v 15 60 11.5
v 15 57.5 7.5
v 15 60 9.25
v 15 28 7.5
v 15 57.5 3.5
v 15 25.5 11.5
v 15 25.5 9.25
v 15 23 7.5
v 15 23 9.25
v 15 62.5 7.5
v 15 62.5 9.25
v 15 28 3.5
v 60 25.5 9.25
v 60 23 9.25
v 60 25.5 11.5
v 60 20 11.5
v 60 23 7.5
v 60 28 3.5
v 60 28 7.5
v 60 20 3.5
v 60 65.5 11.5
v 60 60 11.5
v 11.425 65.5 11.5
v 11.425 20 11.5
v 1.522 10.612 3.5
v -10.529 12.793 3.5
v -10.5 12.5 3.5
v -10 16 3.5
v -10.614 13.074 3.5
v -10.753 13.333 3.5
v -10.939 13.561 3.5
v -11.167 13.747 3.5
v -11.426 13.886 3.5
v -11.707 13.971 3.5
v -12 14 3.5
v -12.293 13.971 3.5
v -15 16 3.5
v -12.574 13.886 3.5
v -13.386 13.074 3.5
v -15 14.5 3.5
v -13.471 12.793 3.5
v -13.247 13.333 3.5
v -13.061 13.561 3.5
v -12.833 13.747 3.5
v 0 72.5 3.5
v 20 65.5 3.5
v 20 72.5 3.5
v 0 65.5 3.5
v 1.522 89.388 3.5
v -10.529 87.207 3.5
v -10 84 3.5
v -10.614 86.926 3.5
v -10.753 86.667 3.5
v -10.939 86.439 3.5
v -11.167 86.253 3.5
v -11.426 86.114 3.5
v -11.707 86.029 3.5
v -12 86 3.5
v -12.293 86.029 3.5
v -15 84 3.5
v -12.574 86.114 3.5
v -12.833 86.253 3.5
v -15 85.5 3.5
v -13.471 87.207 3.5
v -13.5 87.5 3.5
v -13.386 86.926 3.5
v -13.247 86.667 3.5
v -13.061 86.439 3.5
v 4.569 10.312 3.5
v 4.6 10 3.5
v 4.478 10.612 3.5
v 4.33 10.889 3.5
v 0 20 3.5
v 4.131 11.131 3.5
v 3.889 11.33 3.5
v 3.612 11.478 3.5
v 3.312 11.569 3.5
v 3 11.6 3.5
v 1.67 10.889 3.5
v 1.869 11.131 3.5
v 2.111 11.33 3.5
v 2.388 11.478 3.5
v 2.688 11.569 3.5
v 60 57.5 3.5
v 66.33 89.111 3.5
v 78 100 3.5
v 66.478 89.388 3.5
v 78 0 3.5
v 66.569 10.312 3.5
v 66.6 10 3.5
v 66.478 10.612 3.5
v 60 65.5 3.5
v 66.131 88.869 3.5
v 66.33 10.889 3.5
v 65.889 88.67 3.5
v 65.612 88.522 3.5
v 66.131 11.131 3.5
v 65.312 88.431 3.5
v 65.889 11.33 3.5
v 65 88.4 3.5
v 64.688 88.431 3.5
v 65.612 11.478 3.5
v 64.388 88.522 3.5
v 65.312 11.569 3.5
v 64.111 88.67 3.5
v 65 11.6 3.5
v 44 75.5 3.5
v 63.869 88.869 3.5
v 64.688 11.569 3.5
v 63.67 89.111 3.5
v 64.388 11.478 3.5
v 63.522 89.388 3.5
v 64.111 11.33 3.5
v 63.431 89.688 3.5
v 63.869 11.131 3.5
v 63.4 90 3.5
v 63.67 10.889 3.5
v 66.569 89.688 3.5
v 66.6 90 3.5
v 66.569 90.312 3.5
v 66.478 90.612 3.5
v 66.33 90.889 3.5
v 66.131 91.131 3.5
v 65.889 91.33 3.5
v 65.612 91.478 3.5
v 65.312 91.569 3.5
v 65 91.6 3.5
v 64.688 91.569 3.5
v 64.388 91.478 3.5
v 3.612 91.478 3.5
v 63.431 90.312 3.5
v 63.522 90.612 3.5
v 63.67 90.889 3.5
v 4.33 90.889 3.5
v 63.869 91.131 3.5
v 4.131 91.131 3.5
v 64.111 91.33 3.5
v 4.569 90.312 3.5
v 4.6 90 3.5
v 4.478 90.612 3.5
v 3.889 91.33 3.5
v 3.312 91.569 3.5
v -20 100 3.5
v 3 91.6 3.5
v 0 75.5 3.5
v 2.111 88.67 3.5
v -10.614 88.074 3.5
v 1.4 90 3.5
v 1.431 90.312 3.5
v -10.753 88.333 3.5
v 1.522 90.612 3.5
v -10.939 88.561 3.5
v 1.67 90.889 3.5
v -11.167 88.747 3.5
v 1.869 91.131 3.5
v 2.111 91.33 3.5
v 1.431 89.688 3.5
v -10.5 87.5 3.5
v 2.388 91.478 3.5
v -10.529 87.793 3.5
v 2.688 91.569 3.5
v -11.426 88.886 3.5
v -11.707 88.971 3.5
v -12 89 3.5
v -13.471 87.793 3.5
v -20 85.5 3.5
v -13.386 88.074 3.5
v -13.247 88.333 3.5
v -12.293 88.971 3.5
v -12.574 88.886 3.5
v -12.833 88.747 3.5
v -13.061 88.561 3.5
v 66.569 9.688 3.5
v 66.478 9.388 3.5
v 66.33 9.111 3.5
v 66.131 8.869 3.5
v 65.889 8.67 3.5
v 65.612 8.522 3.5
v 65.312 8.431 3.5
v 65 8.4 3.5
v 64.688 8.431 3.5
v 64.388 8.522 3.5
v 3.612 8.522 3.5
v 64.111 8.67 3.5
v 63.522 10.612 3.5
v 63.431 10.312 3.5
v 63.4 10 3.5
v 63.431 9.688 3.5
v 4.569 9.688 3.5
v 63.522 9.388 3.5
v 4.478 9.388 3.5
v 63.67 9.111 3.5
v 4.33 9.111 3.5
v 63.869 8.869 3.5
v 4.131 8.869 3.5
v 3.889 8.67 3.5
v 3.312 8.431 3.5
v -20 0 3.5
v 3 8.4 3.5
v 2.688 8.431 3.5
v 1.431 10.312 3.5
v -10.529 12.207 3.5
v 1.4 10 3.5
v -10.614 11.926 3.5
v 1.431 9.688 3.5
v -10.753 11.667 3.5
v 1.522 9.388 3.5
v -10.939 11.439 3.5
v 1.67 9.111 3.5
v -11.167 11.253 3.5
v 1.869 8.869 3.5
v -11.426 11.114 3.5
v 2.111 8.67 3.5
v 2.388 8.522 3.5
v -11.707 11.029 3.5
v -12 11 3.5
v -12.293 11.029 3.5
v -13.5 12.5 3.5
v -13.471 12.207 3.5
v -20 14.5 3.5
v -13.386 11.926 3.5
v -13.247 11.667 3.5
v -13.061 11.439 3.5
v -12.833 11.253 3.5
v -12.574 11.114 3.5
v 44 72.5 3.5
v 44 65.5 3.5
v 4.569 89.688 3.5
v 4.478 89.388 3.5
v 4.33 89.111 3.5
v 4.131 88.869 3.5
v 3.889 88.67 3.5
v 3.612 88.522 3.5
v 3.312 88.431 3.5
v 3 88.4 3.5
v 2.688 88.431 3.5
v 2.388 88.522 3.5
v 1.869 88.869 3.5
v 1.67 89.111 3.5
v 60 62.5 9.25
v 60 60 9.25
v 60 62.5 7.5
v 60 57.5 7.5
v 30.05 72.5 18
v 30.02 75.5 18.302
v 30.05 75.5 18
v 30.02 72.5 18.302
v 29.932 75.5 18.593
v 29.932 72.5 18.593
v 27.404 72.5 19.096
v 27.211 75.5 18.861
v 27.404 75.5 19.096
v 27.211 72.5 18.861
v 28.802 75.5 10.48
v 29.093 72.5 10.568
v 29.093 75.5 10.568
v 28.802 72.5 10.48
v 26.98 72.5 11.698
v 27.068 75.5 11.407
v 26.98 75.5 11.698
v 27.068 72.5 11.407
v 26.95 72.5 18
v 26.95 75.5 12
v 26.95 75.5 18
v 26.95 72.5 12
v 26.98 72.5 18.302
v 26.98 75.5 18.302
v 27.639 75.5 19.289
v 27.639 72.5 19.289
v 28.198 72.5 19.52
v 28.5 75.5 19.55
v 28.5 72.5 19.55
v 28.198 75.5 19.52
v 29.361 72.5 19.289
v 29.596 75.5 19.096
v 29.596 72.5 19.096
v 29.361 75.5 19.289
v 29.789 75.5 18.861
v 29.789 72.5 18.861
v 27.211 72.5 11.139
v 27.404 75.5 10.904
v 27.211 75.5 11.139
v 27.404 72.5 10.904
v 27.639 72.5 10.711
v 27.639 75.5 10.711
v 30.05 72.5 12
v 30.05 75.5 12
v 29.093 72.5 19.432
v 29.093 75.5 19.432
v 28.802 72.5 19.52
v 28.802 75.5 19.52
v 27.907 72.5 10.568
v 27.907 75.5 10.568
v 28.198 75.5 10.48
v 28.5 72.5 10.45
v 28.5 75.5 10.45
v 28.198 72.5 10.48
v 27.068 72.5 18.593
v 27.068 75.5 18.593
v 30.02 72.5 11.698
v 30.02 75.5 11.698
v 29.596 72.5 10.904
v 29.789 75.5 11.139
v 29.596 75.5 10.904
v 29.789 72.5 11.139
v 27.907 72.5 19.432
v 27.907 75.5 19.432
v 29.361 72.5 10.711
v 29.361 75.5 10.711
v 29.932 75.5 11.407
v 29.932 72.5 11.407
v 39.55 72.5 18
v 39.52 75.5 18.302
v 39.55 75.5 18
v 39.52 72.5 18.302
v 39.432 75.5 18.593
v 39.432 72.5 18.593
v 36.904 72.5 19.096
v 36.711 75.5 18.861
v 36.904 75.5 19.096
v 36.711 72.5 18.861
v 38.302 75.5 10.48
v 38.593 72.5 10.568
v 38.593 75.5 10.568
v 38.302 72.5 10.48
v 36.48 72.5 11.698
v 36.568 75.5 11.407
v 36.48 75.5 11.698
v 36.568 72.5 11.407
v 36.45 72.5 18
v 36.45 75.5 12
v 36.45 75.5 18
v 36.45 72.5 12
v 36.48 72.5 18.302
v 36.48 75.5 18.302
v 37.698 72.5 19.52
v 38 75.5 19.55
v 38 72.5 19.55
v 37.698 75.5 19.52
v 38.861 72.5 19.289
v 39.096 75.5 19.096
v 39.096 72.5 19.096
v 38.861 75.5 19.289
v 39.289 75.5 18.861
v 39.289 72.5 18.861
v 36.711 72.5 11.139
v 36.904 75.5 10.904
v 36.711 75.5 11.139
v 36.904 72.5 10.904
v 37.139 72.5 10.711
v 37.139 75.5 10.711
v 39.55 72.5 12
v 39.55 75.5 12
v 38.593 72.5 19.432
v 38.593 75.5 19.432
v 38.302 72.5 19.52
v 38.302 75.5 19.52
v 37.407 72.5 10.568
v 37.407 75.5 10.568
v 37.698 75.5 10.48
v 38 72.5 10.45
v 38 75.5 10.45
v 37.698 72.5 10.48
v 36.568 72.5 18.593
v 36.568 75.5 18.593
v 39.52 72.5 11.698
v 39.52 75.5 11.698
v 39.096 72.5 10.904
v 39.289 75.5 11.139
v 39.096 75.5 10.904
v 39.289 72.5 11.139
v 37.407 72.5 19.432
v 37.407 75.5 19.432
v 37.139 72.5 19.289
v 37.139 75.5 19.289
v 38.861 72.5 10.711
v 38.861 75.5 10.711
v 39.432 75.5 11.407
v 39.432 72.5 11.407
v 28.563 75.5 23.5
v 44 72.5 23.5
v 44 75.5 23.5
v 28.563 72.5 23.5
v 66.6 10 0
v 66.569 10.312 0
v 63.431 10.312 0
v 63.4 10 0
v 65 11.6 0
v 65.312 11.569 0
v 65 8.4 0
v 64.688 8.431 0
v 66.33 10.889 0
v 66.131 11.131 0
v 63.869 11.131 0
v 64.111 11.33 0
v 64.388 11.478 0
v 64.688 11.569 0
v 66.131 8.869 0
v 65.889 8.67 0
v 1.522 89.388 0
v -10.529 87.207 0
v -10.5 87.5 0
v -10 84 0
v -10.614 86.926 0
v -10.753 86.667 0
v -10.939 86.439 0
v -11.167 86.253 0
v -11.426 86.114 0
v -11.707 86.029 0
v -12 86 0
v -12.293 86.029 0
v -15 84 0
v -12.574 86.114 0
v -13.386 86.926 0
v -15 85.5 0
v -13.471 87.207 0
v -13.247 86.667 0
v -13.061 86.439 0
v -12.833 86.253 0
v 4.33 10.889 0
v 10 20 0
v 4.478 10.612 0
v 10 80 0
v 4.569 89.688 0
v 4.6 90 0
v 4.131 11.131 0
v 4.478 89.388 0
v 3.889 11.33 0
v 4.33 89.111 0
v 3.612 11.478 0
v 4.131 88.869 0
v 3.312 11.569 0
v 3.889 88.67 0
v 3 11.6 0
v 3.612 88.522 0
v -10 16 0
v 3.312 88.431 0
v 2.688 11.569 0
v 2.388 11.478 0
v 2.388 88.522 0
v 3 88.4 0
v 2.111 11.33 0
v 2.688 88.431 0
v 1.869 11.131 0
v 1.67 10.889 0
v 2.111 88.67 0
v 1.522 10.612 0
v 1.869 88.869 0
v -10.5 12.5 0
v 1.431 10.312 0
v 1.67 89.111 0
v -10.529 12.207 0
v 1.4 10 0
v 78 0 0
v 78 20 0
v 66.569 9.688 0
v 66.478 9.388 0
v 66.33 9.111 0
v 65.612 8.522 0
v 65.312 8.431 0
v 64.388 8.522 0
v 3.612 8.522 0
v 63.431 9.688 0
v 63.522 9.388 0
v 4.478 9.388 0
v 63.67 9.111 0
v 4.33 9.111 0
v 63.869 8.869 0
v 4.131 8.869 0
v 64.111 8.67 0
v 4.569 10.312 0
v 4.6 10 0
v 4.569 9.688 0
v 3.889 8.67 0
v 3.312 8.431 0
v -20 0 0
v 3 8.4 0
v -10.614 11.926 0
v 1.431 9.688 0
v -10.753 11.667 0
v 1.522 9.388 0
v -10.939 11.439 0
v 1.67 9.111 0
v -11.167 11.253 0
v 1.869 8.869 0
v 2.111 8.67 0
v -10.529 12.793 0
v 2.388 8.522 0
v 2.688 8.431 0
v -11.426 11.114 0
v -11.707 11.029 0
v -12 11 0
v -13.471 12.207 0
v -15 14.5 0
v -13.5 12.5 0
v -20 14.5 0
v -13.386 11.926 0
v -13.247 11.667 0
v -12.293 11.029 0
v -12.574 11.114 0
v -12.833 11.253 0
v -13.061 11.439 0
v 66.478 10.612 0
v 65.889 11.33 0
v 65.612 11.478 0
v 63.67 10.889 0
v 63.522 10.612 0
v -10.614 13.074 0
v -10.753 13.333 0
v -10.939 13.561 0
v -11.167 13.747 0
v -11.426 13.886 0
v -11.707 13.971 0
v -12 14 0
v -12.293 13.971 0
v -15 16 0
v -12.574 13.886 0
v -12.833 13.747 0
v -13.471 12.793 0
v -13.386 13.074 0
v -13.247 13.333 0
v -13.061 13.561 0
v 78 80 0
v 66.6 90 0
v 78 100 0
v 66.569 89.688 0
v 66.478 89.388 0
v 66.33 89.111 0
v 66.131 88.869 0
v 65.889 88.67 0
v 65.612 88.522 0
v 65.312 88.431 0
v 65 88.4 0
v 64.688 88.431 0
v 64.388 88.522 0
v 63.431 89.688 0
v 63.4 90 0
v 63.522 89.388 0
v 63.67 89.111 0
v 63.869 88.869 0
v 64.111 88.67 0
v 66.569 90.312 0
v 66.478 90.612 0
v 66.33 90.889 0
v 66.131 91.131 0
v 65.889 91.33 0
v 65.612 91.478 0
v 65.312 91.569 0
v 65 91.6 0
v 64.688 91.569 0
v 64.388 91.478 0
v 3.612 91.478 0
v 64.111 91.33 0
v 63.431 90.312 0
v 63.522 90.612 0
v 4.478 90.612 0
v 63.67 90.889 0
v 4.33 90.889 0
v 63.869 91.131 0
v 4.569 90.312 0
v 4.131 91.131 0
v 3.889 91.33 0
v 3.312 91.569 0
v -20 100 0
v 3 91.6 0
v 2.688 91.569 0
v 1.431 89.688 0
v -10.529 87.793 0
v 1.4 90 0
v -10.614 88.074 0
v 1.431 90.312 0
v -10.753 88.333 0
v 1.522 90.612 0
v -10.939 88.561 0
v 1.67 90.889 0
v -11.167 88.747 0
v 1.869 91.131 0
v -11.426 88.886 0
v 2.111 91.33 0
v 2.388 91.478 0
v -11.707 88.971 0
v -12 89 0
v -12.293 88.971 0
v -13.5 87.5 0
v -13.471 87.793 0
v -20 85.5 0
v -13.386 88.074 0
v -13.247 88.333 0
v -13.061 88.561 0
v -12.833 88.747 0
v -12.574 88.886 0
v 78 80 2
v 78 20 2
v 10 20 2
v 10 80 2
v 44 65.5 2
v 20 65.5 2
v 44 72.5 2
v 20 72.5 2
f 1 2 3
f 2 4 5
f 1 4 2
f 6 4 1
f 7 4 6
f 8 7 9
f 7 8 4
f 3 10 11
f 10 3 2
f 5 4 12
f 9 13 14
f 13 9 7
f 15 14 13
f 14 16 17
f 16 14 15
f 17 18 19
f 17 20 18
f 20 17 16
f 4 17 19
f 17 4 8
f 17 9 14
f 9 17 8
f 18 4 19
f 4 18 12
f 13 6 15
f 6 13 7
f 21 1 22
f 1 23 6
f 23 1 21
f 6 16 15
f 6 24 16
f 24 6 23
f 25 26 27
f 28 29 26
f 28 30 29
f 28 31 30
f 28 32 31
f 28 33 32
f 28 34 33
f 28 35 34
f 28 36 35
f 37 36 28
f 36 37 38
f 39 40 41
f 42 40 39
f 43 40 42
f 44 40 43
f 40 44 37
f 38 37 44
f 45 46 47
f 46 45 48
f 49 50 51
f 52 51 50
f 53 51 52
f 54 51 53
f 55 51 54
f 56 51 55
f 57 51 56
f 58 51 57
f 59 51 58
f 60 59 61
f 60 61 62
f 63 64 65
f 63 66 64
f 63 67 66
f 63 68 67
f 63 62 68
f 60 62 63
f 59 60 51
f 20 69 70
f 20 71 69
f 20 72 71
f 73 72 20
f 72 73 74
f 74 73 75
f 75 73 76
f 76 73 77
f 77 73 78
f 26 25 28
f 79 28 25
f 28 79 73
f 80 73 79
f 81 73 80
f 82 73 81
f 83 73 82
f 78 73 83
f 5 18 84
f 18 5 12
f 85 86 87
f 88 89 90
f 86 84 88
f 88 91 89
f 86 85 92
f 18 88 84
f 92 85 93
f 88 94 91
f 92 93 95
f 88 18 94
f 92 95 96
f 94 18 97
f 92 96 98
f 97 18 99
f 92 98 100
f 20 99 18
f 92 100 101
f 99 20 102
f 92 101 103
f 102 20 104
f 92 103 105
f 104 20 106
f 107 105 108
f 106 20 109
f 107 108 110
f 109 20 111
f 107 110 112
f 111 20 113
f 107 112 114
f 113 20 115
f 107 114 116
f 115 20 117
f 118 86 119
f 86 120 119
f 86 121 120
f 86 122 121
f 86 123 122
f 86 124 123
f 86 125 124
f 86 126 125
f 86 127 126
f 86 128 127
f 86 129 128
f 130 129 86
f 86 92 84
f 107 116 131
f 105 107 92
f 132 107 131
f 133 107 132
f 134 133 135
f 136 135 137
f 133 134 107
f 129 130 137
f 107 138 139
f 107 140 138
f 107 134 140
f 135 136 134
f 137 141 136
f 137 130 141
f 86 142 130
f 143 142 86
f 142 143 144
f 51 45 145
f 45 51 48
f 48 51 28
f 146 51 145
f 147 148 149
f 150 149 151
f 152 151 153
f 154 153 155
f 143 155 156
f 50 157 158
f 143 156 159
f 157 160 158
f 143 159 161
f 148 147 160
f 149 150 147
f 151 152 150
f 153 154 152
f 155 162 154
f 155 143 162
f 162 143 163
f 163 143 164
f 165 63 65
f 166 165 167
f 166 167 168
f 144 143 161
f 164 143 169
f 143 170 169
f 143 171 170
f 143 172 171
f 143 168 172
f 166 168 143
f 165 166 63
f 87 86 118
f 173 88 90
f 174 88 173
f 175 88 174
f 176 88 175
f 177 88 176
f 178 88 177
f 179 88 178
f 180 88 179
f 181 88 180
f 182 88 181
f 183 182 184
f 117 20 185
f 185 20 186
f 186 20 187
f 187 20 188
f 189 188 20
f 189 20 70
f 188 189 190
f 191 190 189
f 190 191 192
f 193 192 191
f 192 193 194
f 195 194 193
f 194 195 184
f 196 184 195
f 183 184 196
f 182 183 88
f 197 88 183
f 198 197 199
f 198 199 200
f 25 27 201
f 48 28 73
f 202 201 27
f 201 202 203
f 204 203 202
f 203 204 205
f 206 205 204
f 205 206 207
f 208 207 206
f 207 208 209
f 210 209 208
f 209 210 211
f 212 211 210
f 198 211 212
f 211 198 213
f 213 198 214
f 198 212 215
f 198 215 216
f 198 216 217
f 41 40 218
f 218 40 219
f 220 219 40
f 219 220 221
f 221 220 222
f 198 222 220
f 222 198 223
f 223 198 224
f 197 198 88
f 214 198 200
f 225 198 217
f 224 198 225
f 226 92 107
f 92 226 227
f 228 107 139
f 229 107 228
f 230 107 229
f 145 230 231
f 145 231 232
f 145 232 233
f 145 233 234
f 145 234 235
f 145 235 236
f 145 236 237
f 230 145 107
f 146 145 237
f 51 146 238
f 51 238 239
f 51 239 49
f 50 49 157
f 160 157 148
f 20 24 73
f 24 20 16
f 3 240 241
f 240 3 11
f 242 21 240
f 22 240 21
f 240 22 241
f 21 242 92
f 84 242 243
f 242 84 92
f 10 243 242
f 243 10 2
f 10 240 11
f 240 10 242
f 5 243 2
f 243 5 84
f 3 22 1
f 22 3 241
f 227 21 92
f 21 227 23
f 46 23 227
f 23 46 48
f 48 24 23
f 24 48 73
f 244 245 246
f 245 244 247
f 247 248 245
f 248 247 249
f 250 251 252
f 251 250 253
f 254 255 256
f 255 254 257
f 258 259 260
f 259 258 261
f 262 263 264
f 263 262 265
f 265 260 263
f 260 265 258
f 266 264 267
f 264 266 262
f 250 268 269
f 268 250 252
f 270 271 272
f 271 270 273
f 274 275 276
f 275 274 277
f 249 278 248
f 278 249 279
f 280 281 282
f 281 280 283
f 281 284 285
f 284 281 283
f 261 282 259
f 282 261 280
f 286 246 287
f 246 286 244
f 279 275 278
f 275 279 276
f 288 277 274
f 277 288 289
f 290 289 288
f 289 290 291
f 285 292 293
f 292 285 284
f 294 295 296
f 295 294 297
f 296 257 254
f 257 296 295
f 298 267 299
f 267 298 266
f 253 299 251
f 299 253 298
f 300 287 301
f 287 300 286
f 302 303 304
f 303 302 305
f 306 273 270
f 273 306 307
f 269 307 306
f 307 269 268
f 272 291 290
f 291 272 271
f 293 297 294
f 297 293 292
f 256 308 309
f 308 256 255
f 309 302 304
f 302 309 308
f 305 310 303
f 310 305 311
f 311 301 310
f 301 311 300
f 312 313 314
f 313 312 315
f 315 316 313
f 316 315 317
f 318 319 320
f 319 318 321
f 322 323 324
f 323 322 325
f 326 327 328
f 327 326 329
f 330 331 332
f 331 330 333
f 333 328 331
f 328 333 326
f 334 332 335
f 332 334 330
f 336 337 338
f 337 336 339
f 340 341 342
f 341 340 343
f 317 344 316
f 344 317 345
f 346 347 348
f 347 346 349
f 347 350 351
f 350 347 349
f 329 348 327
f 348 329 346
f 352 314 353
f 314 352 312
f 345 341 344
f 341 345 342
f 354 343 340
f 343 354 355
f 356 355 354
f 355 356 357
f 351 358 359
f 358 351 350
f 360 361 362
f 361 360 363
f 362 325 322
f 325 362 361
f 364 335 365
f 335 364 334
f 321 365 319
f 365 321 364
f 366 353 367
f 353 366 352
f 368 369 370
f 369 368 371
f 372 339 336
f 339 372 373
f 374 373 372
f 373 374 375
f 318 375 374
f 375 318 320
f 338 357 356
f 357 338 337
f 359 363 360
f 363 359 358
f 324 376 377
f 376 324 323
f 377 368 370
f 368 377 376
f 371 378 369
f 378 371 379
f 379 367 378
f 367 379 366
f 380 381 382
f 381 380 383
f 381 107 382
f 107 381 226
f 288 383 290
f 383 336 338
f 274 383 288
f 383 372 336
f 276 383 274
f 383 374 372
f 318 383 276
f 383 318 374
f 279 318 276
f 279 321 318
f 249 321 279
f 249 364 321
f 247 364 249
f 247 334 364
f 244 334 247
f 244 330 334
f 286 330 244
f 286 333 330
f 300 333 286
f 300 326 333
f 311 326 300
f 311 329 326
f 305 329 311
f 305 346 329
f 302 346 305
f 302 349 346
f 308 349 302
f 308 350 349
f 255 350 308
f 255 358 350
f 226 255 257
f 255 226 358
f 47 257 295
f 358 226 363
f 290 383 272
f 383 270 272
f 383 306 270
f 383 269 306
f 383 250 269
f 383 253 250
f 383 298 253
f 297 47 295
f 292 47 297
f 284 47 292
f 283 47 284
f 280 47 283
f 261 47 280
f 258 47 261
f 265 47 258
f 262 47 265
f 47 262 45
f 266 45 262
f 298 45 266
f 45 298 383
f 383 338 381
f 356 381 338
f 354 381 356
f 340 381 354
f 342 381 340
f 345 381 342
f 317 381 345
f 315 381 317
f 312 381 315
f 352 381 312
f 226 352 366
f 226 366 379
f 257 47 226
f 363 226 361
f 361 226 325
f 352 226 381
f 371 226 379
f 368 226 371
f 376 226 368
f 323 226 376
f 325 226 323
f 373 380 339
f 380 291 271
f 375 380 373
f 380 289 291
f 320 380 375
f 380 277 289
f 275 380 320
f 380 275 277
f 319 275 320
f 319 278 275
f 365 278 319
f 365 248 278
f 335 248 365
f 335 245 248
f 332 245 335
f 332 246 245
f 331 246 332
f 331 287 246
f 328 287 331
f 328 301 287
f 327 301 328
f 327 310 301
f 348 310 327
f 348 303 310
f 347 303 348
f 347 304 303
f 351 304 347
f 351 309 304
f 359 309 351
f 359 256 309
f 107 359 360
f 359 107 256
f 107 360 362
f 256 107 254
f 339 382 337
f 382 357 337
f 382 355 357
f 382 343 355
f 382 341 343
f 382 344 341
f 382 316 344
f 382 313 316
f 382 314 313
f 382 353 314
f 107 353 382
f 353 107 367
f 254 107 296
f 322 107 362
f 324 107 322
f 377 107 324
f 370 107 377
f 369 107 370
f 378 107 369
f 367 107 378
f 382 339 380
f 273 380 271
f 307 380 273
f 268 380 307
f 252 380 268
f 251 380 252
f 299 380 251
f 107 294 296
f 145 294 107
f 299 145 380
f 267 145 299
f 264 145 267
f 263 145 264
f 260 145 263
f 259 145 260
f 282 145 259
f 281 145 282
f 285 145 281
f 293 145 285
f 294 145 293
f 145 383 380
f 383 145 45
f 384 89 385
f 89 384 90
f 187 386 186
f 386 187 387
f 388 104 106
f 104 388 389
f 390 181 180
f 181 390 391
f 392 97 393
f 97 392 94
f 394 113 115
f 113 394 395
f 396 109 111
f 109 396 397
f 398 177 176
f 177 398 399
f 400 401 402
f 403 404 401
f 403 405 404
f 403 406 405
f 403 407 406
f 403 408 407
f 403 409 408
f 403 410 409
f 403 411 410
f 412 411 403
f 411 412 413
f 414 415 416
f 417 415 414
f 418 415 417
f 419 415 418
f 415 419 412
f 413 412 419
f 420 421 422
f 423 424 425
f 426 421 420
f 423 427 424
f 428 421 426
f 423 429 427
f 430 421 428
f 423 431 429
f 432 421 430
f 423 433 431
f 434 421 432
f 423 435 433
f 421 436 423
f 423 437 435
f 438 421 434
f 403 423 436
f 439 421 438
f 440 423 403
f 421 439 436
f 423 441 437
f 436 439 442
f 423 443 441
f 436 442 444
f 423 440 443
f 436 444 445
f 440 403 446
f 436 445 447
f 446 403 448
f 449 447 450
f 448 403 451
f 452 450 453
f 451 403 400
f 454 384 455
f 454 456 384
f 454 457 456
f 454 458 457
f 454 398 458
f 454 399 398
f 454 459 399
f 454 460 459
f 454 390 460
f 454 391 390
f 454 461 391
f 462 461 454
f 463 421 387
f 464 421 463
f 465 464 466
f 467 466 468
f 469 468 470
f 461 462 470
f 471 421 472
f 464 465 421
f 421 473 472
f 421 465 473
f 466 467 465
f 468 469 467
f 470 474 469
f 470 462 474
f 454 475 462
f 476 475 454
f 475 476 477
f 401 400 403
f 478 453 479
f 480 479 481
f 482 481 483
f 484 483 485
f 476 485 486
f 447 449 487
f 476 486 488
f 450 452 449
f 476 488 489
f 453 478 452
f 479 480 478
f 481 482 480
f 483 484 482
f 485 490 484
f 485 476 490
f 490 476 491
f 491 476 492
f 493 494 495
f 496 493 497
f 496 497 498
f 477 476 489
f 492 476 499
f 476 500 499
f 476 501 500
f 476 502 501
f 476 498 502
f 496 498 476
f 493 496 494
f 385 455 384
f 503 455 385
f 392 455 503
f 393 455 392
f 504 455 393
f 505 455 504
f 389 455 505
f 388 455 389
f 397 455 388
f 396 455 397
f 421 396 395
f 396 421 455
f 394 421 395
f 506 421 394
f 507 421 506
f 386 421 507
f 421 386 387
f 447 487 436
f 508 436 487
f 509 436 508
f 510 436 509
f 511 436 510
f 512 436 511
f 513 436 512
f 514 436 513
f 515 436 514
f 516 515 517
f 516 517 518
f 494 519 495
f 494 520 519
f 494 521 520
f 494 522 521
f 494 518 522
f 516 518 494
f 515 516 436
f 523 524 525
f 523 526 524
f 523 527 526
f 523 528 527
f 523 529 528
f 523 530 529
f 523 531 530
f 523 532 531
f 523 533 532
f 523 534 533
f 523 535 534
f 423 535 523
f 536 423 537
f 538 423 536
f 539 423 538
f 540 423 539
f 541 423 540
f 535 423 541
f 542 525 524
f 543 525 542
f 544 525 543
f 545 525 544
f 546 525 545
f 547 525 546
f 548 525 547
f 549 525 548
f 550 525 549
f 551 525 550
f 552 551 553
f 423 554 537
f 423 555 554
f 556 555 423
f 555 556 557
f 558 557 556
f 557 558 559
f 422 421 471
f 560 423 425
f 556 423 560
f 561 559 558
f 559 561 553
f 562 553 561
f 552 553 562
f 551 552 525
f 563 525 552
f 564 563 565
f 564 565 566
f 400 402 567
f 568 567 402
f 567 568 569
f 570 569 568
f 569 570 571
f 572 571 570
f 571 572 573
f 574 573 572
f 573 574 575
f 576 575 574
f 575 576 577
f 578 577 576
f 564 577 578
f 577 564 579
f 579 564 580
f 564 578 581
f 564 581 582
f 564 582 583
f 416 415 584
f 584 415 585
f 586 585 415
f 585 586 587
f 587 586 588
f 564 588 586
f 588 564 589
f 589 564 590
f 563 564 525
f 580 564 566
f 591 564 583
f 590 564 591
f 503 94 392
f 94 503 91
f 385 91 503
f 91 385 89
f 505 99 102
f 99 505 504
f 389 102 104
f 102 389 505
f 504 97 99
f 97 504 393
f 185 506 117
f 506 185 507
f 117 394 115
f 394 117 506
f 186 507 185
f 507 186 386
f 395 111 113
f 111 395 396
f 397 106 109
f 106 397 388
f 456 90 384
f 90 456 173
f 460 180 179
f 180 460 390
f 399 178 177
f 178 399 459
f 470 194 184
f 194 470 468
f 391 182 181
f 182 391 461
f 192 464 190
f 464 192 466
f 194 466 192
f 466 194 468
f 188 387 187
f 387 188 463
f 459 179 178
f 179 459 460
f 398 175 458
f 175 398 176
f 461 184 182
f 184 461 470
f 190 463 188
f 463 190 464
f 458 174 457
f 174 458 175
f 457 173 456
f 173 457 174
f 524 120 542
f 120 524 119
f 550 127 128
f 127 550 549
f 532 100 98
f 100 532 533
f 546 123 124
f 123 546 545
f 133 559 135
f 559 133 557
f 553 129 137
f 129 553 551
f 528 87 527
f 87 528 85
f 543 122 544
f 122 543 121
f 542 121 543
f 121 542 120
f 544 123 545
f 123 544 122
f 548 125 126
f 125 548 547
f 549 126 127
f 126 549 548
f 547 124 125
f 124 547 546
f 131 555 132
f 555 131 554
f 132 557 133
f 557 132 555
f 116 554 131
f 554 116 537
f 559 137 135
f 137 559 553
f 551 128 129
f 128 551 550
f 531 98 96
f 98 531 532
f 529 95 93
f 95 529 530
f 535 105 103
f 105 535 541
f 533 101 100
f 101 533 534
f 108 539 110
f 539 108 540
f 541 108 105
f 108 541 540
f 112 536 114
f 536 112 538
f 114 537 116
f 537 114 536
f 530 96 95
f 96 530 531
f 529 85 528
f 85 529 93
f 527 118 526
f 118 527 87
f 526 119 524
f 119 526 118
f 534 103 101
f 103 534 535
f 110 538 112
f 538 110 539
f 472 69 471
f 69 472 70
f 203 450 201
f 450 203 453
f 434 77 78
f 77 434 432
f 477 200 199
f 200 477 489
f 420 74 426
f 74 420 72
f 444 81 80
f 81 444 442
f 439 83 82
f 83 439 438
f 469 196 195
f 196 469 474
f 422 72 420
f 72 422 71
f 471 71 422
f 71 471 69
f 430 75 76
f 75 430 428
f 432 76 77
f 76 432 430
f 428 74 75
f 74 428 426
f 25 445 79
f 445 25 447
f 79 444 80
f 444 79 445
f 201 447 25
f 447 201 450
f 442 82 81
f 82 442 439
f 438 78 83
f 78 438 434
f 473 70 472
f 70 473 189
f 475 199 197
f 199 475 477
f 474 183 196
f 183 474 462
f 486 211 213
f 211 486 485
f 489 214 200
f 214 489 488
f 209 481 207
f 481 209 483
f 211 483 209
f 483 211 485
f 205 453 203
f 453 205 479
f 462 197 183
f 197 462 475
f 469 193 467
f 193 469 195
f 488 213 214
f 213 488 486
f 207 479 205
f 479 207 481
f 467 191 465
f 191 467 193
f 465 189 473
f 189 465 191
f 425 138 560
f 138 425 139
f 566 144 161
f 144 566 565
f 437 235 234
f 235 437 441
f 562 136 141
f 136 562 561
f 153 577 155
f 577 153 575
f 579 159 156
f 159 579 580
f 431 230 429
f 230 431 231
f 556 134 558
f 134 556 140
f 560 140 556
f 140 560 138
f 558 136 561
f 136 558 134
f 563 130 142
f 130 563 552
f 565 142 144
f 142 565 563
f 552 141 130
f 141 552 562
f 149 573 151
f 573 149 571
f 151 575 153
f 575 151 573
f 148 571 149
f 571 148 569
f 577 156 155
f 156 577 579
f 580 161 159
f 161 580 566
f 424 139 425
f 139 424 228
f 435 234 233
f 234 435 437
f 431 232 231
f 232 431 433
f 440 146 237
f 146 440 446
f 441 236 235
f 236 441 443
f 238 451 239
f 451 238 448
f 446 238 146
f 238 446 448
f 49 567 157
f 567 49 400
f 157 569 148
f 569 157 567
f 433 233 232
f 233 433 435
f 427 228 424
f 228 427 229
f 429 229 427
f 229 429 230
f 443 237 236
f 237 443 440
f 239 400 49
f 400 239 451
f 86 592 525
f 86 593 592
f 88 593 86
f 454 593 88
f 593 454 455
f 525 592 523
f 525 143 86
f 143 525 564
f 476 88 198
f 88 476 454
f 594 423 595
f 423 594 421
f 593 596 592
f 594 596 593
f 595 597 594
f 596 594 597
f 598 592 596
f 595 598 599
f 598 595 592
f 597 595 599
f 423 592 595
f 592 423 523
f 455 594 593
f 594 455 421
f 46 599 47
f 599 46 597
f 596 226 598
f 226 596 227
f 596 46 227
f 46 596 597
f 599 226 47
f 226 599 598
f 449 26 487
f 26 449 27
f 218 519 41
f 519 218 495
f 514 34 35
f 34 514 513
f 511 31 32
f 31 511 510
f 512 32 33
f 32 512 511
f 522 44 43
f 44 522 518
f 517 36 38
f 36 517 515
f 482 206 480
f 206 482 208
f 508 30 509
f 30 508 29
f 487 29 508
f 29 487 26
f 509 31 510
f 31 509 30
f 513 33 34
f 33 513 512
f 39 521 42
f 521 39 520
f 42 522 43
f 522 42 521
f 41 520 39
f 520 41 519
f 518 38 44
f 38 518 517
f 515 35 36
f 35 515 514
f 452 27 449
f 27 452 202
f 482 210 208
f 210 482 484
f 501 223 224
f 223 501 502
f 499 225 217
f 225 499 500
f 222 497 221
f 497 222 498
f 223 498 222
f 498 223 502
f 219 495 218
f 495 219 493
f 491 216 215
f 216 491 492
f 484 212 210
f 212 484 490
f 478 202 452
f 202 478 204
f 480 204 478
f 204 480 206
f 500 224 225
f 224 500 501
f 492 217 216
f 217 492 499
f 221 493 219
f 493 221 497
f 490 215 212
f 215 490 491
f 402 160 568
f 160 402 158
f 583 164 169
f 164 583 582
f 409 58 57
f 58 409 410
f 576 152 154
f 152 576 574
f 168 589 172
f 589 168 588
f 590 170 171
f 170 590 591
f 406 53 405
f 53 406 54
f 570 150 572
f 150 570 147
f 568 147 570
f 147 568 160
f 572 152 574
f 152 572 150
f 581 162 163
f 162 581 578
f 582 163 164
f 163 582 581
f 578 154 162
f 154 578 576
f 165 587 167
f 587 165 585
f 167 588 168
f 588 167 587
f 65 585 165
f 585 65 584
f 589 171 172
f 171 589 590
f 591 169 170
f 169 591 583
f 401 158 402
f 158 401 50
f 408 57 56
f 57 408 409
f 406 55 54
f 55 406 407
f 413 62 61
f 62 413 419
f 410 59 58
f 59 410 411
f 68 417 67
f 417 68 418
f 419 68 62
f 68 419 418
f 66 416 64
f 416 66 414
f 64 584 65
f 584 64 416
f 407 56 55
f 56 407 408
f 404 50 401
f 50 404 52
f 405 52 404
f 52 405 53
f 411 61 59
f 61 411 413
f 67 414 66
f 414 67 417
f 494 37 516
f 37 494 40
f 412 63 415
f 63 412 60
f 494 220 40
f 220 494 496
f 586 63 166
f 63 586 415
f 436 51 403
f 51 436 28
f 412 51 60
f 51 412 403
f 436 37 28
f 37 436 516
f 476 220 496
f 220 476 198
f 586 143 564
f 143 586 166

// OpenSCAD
module rc522_channel() {
    difference() {
        cube([45,8,8]);
        translate([0,3,4]) {
            cube([45,5,1.75]); 
            translate([0,2.5,1.75]) {
                cube([45,5,2.5]); 
            }
        }
        
    }
}

module rc522_holder() {
    rc522_channel();
    translate([0,45.5,0]) {
        mirror([0,1,0]) {
            rc522_channel();
        }
    }
    translate([-15,0,0]) {
        difference() {
            cube([15,45.5,8]);
            rotate([0,-35,0]) {
                cube([15,45.5,8]);   
            }
        }
    }
}


module card_slot() {
    difference() {
        cube([78,100,3.5]);
        translate([10,20,0]) {
            cube([68,60,2]);
        }
        translate([65,10,0]) {
            cylinder(r=1.6, h = 5, $fn = 32);
            translate([0,80,0]) {
                cylinder(r=1.6, h = 5, $fn = 32);
            }
        }
        translate([3,10,0]) {
            cylinder(r=1.6, h = 5, $fn = 32);
            translate([0,80,0]) {
                cylinder(r=1.6, h = 5, $fn = 32);
            }
        }
    }
}


difference() {
    card_slot();
    translate([20,65.5,2]) {
        cube([24,7,1.5]);
    }
}

// switch mount
translate([0,72.5,3.5]) {
    difference() {
        cube([44,3,20]);
    
        //holes
        translate([28.5,4,8.5]) {
            rotate([90,0,0]) {
                hull() {
                    cylinder(r=1.55, h=5, $fn=32);
                    translate([0,6,0]) {
                        cylinder(r=1.55, h=5, $fn=32);
                    }
                }
            }
            translate([9.50,0,0]) {
                rotate([90,0,0]) {
                    hull() {
                        cylinder(r=1.55, h=5, $fn=32);
                        translate([0,6,0]) {
                            cylinder(r=1.55, h=5, $fn=32);
                        }
                    }
                }
            }                   
        }
        
        // taper
        rotate([0,-35,0]) {
            cube([35,3,20]);   
        }
    }
}

translate([15,20,3.5]) {
    rc522_holder();
}

// LCD
translate([-20,0,0]) {
    
    difference() {
        cube([20,100,3.5]);
        
        // LCD holes
        translate([8,12.5,-0.75]) {
            cylinder(r=1.5, h = 5, $fn = 32);
  
            translate([0,75,0]) {
                cylinder(r=1.5, h = 5, $fn = 32);
            }

        }
        
        // screen
        translate([-5,14.5,0]) {
            cube([10,71,3.5]);
            translate([10,1.5,0]) {
                cube([5,68,3.5]);
            }
        }
        
    }
}
